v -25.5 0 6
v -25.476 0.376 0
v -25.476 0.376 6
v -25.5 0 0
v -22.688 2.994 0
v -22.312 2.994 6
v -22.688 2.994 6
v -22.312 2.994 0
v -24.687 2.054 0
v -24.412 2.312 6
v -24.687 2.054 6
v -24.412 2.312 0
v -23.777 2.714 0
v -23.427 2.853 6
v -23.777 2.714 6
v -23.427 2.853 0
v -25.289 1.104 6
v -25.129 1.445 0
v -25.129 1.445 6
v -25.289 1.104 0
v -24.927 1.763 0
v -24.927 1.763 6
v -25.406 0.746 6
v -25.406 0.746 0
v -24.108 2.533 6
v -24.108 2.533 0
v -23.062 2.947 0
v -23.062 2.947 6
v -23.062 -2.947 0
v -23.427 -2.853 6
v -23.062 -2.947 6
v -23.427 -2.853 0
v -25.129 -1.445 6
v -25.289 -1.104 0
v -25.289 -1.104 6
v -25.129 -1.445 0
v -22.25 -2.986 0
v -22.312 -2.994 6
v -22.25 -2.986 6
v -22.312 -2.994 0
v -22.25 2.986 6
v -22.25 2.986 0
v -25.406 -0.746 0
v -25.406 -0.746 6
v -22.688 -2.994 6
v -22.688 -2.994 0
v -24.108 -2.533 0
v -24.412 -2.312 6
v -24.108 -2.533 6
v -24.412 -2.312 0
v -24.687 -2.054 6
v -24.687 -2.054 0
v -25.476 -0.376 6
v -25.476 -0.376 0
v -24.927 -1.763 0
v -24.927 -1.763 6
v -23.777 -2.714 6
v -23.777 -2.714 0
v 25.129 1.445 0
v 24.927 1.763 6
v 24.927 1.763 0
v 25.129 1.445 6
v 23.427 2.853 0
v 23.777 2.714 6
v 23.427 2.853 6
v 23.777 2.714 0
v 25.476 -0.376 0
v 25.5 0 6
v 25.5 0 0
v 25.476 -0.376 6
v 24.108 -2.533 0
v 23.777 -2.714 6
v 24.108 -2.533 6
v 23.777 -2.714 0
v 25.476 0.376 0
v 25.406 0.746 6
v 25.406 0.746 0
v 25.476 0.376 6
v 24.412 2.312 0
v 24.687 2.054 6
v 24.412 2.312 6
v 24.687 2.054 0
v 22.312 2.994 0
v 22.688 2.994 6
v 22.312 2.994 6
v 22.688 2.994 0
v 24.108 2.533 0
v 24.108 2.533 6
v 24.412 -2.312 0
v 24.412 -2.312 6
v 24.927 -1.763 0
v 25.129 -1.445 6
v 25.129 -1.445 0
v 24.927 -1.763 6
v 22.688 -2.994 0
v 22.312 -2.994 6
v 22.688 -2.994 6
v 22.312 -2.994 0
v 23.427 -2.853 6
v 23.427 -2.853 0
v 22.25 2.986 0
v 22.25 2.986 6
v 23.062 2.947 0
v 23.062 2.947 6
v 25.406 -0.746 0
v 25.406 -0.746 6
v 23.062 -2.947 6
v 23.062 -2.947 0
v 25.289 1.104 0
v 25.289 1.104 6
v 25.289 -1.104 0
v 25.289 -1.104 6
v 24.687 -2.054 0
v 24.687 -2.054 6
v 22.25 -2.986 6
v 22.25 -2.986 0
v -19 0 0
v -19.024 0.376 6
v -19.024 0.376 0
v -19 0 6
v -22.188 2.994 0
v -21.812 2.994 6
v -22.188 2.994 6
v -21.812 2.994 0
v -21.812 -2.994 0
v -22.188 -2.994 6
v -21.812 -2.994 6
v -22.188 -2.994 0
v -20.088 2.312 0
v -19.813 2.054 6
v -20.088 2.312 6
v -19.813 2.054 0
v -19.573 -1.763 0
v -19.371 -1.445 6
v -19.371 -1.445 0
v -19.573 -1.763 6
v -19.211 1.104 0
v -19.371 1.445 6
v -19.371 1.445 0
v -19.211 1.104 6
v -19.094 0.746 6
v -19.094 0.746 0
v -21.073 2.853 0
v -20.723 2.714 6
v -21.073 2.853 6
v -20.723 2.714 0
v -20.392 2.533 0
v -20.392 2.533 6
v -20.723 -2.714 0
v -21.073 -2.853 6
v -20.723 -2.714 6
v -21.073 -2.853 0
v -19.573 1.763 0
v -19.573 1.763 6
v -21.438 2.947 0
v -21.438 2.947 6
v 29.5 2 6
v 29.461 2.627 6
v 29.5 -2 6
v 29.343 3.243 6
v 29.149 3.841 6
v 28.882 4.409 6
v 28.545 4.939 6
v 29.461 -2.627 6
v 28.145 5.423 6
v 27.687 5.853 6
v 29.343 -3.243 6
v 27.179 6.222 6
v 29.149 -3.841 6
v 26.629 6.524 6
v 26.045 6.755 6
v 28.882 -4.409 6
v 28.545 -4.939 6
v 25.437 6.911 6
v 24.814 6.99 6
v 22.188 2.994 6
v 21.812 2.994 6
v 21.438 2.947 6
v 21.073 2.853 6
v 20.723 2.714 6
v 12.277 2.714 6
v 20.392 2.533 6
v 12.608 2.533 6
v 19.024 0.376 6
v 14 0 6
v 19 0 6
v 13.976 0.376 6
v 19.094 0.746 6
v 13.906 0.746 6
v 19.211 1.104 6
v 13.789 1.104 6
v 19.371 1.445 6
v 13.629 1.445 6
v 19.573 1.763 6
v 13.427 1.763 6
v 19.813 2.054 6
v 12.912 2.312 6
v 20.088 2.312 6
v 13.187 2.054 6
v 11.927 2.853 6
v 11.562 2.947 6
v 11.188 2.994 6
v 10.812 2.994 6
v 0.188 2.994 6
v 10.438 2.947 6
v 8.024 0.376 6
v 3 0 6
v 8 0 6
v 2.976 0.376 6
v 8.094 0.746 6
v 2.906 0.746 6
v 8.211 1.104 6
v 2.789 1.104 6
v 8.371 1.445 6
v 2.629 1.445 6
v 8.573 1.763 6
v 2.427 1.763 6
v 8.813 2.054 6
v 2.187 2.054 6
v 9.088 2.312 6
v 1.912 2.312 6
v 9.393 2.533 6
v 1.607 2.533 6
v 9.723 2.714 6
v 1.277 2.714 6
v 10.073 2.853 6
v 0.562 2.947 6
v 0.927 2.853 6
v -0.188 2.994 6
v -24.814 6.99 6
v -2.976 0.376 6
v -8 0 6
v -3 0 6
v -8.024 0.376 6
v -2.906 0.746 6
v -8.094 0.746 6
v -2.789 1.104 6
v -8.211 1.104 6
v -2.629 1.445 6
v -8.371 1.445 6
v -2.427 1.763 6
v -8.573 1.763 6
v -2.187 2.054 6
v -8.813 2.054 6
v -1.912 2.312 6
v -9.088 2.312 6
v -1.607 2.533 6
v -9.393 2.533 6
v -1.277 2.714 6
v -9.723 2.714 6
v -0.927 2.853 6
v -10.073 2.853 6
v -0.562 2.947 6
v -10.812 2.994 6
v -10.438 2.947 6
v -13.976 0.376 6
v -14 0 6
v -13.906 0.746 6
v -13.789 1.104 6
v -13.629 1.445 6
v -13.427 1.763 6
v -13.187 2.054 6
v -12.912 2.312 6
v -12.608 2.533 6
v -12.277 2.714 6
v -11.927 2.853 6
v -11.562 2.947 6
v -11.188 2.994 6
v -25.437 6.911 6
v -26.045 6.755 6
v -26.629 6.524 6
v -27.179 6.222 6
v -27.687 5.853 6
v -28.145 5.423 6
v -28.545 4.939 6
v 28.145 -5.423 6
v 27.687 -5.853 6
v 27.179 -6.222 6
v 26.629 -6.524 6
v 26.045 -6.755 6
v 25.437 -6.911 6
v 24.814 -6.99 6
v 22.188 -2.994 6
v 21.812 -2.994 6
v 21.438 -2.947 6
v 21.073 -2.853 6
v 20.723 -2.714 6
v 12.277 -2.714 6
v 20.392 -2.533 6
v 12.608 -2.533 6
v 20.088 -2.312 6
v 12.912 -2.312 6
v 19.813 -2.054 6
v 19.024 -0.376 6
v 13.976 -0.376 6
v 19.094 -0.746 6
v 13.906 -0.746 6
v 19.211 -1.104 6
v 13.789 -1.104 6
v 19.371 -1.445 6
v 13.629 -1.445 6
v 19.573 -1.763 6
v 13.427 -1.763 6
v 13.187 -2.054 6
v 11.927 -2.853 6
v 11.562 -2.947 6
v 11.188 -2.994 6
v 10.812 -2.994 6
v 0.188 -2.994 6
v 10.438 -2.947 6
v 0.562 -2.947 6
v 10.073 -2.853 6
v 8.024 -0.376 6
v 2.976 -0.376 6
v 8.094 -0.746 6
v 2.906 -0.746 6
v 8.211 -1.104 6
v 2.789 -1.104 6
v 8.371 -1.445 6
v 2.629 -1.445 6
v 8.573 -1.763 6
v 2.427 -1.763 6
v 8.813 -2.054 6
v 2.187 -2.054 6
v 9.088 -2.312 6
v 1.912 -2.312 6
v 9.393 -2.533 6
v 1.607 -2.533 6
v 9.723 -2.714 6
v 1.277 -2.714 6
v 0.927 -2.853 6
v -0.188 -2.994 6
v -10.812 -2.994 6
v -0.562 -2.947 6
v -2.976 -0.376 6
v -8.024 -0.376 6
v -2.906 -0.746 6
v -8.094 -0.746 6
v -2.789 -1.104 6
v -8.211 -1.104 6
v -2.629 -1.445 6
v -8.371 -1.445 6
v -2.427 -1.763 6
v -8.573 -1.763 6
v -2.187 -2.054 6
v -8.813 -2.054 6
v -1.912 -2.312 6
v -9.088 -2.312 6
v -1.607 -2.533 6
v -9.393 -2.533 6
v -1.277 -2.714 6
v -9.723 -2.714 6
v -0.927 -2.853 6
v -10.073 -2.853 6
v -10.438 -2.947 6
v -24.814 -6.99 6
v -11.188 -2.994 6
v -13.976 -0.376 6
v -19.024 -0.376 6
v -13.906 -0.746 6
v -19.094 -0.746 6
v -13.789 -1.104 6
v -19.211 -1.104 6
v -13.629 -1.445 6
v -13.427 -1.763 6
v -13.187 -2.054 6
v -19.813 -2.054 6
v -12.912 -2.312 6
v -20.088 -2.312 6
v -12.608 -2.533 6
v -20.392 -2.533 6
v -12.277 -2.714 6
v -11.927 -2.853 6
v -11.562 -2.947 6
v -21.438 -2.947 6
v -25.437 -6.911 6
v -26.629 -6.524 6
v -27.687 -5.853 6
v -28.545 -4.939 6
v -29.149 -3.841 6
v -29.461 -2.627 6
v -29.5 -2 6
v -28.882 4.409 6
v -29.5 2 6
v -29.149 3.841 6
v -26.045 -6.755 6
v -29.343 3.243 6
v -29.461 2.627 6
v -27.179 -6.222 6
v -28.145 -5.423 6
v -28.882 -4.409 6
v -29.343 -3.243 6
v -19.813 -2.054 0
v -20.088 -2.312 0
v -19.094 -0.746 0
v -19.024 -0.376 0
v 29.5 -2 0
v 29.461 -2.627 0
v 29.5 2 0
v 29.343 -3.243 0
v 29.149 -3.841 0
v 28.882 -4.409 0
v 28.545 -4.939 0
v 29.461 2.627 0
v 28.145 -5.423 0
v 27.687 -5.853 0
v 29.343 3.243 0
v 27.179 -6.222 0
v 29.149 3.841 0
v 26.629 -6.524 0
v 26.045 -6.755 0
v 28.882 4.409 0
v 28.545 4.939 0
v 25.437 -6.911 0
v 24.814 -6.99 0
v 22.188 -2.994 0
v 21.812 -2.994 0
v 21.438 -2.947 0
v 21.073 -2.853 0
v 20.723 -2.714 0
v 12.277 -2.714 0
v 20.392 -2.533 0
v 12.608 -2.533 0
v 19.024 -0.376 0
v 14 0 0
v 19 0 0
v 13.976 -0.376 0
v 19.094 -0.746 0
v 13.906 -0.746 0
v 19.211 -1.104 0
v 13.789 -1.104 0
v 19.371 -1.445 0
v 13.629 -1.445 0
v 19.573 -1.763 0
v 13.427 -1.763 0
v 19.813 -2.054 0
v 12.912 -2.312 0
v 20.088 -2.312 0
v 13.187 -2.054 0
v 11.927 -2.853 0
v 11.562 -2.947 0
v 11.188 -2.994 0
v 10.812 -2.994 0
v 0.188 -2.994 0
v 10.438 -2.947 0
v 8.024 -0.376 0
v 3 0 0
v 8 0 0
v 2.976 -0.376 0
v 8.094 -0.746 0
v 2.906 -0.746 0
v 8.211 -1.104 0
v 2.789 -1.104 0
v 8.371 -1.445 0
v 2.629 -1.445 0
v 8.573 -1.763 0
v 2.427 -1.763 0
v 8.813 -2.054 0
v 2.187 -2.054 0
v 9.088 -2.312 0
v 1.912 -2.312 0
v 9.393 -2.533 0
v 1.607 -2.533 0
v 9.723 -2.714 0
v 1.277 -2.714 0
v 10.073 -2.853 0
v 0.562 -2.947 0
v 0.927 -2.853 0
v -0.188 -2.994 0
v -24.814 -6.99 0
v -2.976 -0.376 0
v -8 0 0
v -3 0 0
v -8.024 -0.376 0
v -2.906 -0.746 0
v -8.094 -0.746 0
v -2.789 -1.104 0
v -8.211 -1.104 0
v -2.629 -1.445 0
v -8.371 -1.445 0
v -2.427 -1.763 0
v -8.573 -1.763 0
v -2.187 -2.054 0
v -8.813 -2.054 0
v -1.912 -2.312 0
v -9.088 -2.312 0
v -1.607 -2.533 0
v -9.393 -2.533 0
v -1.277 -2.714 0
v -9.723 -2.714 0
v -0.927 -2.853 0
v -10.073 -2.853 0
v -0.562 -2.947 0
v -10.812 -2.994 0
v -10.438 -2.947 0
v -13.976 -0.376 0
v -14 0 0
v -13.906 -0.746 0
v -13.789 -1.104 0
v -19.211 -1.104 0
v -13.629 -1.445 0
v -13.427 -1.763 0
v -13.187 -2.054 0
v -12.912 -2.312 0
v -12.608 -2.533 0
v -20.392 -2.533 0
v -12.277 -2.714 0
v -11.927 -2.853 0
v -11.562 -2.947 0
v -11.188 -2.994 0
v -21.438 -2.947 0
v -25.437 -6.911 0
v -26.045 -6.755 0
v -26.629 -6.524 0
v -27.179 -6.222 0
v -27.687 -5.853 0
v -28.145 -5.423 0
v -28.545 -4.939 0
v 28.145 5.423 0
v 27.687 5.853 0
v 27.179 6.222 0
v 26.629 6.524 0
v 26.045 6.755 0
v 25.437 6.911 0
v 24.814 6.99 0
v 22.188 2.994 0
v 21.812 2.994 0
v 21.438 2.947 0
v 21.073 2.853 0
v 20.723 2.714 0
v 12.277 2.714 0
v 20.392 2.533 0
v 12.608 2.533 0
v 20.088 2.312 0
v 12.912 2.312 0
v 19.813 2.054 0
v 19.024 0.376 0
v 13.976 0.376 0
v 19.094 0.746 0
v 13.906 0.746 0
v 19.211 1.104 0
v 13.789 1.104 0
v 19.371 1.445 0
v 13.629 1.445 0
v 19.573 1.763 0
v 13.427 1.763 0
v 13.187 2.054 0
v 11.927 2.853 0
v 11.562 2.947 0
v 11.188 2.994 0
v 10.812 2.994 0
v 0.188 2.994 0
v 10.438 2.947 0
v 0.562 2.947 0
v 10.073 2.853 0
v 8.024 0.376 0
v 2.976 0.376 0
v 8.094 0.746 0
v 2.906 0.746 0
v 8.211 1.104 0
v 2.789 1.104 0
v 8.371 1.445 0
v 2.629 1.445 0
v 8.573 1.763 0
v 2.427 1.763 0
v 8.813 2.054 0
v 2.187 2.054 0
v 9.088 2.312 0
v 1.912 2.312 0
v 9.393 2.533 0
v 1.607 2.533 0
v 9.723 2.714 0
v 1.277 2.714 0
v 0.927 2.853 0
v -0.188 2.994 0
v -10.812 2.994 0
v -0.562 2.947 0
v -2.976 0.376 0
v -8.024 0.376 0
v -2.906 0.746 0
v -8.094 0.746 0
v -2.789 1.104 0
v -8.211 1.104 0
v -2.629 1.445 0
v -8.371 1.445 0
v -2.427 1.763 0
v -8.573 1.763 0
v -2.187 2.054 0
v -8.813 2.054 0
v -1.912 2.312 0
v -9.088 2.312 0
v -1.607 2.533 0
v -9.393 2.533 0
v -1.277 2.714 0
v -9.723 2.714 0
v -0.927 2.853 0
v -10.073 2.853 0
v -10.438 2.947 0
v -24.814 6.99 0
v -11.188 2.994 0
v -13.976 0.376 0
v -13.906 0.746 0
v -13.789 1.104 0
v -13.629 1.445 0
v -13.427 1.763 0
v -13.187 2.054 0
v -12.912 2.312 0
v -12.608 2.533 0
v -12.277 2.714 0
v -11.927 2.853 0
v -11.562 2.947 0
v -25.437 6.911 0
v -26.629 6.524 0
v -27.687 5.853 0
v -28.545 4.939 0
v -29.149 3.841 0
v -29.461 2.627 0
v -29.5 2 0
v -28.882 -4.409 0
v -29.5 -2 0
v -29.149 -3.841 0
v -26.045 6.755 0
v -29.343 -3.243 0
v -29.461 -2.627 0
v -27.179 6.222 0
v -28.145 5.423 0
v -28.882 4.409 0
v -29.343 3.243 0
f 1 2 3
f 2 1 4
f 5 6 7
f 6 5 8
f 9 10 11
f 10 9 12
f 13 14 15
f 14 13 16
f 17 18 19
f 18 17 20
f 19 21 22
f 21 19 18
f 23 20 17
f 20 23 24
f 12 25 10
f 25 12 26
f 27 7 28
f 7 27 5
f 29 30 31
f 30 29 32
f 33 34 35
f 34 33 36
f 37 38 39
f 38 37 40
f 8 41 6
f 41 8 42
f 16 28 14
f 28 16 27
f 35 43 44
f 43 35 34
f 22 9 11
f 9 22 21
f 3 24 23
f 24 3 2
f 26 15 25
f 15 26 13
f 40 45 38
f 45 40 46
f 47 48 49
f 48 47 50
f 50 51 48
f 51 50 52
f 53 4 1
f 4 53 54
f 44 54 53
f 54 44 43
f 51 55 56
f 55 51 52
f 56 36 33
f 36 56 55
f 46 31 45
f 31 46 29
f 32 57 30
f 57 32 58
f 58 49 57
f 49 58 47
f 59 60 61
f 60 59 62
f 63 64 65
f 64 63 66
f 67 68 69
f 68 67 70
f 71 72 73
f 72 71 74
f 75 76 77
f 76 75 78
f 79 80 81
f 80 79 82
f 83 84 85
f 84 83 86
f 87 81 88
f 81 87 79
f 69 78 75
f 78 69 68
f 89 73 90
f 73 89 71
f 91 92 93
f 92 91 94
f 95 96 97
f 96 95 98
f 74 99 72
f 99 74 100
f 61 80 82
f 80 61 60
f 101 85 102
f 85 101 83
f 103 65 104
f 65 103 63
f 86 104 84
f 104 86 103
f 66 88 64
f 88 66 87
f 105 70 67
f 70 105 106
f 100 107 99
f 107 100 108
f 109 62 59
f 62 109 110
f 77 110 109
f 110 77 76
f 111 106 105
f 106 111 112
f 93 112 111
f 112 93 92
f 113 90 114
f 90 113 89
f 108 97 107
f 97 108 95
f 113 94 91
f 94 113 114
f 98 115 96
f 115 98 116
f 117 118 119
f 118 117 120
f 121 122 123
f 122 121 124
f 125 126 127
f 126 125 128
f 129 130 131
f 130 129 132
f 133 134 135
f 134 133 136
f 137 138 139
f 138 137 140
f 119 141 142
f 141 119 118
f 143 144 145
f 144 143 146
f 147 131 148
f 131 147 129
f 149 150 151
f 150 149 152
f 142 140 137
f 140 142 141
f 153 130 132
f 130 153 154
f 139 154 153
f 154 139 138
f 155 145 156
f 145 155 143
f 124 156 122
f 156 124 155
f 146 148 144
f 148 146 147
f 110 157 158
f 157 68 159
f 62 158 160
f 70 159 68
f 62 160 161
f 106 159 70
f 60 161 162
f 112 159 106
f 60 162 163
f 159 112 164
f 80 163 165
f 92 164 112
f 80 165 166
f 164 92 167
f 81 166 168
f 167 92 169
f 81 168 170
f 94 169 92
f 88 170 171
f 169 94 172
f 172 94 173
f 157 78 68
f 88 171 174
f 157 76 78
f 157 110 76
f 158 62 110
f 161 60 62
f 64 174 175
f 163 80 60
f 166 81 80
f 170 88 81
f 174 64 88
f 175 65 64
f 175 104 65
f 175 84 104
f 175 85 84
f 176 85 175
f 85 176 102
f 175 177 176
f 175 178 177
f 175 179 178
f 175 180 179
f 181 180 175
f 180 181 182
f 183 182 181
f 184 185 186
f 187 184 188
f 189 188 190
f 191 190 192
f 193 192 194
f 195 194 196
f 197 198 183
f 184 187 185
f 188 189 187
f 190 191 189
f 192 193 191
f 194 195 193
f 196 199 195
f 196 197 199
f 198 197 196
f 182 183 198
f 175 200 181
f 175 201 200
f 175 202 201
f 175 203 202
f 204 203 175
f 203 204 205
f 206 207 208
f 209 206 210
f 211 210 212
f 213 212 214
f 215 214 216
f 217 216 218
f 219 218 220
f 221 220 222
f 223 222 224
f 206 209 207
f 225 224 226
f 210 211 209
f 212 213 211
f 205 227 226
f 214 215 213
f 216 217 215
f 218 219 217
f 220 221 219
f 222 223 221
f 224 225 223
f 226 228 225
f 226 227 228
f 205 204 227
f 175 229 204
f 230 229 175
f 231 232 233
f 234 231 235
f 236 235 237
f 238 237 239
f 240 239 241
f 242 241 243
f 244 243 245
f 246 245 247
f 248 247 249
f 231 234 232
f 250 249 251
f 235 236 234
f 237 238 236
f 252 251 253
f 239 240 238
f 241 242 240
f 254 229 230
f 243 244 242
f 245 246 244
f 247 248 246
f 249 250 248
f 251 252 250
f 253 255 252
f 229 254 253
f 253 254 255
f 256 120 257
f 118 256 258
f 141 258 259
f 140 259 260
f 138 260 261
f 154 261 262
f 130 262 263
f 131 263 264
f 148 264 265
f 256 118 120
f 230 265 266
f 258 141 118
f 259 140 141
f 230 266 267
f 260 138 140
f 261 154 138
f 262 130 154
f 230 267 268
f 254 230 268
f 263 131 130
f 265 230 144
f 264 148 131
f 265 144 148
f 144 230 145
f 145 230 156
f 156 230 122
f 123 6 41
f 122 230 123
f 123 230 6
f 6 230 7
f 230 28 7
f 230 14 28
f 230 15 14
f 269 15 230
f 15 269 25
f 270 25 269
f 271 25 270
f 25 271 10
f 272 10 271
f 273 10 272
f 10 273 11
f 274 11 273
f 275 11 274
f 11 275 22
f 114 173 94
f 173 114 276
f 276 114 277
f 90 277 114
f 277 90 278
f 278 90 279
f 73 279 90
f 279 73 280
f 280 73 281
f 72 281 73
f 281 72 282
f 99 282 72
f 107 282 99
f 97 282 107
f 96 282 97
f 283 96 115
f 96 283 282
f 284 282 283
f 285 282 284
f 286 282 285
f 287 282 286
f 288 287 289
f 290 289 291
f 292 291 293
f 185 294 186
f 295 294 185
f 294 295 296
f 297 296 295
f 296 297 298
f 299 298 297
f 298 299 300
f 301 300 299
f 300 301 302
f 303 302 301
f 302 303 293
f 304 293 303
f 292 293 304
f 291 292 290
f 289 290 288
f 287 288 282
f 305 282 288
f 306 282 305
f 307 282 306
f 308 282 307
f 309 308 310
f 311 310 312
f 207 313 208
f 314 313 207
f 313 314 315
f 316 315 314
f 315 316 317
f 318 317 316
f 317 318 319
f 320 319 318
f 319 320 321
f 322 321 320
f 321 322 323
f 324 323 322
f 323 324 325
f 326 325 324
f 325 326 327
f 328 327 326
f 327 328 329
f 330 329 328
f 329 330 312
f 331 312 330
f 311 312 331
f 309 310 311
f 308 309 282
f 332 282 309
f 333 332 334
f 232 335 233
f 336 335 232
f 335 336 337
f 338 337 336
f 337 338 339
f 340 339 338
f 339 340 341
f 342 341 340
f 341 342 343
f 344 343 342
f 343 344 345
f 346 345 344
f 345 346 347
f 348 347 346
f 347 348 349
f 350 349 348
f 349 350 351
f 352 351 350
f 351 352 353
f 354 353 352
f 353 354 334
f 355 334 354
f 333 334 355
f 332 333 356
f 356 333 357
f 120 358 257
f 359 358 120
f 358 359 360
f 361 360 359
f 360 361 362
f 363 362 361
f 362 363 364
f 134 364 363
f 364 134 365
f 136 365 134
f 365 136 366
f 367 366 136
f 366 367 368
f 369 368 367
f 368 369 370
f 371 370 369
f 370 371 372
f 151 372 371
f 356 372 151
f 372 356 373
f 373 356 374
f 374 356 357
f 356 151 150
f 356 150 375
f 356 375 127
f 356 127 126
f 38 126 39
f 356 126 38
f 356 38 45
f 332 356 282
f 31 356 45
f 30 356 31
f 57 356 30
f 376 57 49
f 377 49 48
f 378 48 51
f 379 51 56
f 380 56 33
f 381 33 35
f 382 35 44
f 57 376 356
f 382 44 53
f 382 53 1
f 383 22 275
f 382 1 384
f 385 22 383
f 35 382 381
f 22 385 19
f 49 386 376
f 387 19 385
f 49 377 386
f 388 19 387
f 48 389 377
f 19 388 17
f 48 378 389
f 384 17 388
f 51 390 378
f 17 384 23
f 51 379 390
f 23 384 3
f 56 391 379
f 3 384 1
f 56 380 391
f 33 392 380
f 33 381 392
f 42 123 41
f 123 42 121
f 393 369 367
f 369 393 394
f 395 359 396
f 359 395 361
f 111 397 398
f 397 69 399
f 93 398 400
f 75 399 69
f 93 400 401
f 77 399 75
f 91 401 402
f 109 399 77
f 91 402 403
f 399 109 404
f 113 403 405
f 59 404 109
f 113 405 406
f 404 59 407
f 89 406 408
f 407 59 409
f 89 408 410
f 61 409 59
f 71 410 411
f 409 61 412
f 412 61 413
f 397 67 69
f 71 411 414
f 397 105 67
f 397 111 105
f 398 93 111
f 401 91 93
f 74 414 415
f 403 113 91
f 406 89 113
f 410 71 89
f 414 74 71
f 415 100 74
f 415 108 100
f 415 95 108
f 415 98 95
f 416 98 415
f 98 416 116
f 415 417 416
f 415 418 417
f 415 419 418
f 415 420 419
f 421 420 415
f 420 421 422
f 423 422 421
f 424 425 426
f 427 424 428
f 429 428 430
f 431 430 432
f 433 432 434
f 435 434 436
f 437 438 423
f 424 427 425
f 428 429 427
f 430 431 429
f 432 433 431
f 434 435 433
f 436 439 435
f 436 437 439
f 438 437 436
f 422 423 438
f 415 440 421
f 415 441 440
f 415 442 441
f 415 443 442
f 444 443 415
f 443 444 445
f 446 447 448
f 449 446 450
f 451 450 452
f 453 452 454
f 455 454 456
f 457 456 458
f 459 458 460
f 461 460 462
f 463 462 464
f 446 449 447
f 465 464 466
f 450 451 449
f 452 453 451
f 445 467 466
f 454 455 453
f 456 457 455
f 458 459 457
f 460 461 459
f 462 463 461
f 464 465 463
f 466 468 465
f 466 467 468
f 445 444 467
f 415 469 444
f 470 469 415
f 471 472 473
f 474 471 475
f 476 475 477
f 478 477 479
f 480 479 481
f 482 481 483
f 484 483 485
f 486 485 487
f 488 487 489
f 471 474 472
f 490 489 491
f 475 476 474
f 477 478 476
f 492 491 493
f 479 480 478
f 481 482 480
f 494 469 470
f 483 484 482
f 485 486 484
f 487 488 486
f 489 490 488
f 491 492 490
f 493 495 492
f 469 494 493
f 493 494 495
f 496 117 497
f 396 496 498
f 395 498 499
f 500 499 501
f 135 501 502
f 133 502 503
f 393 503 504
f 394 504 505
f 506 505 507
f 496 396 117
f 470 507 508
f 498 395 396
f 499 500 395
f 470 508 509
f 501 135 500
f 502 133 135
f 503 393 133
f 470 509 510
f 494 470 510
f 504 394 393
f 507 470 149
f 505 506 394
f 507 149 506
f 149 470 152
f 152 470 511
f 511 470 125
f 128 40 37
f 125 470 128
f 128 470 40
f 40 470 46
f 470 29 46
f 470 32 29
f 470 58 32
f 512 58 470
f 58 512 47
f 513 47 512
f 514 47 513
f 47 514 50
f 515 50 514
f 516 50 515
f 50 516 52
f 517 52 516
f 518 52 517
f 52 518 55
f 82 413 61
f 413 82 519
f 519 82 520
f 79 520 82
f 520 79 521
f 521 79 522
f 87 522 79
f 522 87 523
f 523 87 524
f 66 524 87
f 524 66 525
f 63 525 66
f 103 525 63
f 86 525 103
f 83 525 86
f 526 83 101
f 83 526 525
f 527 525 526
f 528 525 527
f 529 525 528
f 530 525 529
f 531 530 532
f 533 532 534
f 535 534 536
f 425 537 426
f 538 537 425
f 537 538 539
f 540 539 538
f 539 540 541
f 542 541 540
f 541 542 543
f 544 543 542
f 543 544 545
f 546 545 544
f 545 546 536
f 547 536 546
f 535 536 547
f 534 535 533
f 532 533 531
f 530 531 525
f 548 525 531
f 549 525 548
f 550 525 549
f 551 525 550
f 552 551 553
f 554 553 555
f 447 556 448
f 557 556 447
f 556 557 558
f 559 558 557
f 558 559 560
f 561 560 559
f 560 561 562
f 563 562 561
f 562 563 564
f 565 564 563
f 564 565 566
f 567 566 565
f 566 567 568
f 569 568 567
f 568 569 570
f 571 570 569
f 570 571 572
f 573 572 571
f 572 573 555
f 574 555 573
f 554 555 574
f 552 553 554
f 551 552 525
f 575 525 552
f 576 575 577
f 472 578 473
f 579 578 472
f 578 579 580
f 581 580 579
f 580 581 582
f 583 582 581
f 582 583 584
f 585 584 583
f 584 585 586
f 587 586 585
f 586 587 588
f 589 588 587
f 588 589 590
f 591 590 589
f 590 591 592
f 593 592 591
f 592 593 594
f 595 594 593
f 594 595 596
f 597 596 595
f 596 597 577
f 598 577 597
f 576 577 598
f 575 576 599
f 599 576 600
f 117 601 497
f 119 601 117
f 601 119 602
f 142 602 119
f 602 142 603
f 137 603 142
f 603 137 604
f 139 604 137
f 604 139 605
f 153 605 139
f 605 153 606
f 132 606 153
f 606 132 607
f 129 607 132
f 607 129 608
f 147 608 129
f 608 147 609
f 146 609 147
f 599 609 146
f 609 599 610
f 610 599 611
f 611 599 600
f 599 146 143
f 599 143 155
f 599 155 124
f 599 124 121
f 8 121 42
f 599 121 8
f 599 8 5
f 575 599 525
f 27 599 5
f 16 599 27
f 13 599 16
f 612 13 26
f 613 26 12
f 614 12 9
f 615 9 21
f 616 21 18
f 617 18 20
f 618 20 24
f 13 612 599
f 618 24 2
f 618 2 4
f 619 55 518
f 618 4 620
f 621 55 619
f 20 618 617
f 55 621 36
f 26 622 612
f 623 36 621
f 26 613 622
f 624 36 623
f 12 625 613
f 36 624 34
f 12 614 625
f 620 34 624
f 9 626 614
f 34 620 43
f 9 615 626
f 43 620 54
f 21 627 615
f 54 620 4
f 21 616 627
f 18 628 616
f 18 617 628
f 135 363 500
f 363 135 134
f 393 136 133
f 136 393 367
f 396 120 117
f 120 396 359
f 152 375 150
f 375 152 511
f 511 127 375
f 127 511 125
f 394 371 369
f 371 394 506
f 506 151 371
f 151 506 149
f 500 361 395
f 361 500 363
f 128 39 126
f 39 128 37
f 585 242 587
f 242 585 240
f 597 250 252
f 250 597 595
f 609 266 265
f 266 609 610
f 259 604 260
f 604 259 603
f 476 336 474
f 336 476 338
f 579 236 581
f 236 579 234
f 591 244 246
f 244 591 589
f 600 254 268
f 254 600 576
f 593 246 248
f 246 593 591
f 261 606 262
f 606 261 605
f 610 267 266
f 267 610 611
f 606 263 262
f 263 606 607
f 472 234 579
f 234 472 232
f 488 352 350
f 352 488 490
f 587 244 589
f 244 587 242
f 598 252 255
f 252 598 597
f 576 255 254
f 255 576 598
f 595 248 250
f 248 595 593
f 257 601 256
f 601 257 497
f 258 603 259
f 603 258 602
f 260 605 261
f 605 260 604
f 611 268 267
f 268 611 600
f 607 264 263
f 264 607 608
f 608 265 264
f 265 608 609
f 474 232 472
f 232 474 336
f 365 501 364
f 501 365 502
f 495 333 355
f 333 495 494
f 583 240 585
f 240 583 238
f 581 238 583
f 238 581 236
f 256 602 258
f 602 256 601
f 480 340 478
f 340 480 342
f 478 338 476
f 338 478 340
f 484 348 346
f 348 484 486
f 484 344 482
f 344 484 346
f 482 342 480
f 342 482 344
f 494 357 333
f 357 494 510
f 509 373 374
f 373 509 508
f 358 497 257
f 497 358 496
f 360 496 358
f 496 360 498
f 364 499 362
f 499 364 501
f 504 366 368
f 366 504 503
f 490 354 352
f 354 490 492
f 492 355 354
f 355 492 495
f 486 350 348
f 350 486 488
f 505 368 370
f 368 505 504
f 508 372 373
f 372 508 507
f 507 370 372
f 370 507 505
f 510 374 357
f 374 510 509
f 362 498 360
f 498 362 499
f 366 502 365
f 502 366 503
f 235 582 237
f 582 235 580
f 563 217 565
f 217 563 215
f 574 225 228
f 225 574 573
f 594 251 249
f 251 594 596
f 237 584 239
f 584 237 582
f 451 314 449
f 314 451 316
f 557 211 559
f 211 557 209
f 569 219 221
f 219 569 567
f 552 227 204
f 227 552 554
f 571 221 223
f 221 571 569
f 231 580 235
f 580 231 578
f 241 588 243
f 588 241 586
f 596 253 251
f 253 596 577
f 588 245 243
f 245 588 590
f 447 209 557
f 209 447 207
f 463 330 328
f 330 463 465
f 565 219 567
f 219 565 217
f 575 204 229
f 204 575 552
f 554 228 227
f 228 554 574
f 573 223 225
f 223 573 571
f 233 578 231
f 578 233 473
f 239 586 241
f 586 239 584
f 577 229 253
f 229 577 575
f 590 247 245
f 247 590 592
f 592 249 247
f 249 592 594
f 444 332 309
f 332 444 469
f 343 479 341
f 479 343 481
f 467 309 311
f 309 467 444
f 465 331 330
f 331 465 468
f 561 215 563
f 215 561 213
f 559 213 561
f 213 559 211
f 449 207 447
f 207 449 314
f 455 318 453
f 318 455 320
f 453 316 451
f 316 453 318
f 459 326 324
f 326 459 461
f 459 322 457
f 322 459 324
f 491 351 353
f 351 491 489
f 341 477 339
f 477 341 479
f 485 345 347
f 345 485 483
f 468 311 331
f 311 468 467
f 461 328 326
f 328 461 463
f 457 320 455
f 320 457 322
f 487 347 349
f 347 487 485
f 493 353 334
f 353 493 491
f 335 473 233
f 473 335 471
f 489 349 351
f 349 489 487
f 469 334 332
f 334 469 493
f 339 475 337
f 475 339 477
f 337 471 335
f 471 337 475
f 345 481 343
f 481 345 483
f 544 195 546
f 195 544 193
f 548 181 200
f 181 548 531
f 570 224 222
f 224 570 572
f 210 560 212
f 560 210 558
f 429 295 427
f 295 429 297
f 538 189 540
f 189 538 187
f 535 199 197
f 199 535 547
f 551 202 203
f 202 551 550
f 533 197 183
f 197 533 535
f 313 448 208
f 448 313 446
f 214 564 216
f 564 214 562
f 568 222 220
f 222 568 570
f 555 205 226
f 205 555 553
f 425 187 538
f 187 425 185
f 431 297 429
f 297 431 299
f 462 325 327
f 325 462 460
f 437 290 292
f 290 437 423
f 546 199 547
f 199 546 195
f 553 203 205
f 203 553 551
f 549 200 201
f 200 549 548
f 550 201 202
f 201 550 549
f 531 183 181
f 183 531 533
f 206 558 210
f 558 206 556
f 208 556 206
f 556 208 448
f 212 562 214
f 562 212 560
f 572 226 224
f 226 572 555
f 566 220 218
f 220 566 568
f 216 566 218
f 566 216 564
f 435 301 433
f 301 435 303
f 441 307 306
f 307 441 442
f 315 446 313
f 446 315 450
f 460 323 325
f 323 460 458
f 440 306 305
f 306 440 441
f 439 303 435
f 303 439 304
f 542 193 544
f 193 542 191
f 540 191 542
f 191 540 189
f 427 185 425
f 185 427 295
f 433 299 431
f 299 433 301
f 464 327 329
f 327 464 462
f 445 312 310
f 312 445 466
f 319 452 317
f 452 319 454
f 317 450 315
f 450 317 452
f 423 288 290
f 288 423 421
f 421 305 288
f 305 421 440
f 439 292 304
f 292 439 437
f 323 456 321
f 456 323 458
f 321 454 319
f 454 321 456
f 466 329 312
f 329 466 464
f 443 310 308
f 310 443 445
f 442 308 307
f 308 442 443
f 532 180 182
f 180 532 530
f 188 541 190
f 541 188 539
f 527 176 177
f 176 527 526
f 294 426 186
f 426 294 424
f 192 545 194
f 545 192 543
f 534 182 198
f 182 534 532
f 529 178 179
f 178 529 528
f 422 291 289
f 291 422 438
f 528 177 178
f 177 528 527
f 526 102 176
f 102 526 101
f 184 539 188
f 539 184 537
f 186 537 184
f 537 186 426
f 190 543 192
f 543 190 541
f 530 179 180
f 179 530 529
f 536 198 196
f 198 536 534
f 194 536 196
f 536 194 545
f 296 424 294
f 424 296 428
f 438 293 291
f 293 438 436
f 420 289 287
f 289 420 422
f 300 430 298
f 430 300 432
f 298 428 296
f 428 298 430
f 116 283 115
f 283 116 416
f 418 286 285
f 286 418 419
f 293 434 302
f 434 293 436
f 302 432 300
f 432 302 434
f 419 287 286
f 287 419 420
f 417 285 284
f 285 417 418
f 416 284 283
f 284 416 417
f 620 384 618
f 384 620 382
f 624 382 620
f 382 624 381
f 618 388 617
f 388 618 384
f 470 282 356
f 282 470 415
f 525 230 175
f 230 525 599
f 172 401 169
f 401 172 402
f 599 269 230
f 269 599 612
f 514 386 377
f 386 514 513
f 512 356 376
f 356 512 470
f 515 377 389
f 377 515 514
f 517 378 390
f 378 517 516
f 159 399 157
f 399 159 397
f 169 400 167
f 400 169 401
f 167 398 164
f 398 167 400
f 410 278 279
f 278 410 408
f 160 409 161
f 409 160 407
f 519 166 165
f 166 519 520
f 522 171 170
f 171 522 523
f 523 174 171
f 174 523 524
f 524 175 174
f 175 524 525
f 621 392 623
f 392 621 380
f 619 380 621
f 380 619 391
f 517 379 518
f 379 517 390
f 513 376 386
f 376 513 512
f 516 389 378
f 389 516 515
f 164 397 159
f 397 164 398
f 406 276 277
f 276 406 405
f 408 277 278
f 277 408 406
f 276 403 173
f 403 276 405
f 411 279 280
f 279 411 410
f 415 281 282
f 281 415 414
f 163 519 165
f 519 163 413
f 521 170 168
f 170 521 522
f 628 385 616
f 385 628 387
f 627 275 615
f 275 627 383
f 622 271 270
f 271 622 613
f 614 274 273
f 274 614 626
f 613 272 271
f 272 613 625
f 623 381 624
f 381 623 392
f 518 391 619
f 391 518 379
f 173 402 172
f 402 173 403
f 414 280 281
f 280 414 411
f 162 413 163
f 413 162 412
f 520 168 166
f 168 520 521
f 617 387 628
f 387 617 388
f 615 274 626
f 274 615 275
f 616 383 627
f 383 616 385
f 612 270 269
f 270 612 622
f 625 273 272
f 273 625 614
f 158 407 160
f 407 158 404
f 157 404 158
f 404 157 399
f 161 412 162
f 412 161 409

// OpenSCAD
$fn = 50;


difference() {
	union() {
		hull() {
			translate(v = [-24.5000000000, 2.0000000000, 0]) {
				cylinder(h = 6, r = 5);
			}
			translate(v = [24.5000000000, 2.0000000000, 0]) {
				cylinder(h = 6, r = 5);
			}
			translate(v = [-24.5000000000, -2.0000000000, 0]) {
				cylinder(h = 6, r = 5);
			}
			translate(v = [24.5000000000, -2.0000000000, 0]) {
				cylinder(h = 6, r = 5);
			}
		}
	}
	union() {
		#translate(v = [-22.5000000000, 0.0000000000, -100.0000000000]) {
			cylinder(h = 200, r = 3.0000000000);
		}
		#translate(v = [-22.5000000000, 0.0000000000, -100.0000000000]) {
			cylinder(h = 200, r = 3.0000000000);
		}
		#translate(v = [22.5000000000, 0.0000000000, -100.0000000000]) {
			cylinder(h = 200, r = 3.0000000000);
		}
		#translate(v = [22.5000000000, 0.0000000000, -100.0000000000]) {
			cylinder(h = 200, r = 3.0000000000);
		}
		#translate(v = [-22.0000000000, 0, 0]) {
			cylinder(h = 6, r = 3.0000000000);
		}
		#translate(v = [-11.0000000000, 0, 0]) {
			cylinder(h = 6, r = 3.0000000000);
		}
		#cylinder(h = 6, r = 3.0000000000);
		#translate(v = [11.0000000000, 0, 0]) {
			cylinder(h = 6, r = 3.0000000000);
		}
		#translate(v = [22.0000000000, 0, 0]) {
			cylinder(h = 6, r = 3.0000000000);
		}
	}
}
